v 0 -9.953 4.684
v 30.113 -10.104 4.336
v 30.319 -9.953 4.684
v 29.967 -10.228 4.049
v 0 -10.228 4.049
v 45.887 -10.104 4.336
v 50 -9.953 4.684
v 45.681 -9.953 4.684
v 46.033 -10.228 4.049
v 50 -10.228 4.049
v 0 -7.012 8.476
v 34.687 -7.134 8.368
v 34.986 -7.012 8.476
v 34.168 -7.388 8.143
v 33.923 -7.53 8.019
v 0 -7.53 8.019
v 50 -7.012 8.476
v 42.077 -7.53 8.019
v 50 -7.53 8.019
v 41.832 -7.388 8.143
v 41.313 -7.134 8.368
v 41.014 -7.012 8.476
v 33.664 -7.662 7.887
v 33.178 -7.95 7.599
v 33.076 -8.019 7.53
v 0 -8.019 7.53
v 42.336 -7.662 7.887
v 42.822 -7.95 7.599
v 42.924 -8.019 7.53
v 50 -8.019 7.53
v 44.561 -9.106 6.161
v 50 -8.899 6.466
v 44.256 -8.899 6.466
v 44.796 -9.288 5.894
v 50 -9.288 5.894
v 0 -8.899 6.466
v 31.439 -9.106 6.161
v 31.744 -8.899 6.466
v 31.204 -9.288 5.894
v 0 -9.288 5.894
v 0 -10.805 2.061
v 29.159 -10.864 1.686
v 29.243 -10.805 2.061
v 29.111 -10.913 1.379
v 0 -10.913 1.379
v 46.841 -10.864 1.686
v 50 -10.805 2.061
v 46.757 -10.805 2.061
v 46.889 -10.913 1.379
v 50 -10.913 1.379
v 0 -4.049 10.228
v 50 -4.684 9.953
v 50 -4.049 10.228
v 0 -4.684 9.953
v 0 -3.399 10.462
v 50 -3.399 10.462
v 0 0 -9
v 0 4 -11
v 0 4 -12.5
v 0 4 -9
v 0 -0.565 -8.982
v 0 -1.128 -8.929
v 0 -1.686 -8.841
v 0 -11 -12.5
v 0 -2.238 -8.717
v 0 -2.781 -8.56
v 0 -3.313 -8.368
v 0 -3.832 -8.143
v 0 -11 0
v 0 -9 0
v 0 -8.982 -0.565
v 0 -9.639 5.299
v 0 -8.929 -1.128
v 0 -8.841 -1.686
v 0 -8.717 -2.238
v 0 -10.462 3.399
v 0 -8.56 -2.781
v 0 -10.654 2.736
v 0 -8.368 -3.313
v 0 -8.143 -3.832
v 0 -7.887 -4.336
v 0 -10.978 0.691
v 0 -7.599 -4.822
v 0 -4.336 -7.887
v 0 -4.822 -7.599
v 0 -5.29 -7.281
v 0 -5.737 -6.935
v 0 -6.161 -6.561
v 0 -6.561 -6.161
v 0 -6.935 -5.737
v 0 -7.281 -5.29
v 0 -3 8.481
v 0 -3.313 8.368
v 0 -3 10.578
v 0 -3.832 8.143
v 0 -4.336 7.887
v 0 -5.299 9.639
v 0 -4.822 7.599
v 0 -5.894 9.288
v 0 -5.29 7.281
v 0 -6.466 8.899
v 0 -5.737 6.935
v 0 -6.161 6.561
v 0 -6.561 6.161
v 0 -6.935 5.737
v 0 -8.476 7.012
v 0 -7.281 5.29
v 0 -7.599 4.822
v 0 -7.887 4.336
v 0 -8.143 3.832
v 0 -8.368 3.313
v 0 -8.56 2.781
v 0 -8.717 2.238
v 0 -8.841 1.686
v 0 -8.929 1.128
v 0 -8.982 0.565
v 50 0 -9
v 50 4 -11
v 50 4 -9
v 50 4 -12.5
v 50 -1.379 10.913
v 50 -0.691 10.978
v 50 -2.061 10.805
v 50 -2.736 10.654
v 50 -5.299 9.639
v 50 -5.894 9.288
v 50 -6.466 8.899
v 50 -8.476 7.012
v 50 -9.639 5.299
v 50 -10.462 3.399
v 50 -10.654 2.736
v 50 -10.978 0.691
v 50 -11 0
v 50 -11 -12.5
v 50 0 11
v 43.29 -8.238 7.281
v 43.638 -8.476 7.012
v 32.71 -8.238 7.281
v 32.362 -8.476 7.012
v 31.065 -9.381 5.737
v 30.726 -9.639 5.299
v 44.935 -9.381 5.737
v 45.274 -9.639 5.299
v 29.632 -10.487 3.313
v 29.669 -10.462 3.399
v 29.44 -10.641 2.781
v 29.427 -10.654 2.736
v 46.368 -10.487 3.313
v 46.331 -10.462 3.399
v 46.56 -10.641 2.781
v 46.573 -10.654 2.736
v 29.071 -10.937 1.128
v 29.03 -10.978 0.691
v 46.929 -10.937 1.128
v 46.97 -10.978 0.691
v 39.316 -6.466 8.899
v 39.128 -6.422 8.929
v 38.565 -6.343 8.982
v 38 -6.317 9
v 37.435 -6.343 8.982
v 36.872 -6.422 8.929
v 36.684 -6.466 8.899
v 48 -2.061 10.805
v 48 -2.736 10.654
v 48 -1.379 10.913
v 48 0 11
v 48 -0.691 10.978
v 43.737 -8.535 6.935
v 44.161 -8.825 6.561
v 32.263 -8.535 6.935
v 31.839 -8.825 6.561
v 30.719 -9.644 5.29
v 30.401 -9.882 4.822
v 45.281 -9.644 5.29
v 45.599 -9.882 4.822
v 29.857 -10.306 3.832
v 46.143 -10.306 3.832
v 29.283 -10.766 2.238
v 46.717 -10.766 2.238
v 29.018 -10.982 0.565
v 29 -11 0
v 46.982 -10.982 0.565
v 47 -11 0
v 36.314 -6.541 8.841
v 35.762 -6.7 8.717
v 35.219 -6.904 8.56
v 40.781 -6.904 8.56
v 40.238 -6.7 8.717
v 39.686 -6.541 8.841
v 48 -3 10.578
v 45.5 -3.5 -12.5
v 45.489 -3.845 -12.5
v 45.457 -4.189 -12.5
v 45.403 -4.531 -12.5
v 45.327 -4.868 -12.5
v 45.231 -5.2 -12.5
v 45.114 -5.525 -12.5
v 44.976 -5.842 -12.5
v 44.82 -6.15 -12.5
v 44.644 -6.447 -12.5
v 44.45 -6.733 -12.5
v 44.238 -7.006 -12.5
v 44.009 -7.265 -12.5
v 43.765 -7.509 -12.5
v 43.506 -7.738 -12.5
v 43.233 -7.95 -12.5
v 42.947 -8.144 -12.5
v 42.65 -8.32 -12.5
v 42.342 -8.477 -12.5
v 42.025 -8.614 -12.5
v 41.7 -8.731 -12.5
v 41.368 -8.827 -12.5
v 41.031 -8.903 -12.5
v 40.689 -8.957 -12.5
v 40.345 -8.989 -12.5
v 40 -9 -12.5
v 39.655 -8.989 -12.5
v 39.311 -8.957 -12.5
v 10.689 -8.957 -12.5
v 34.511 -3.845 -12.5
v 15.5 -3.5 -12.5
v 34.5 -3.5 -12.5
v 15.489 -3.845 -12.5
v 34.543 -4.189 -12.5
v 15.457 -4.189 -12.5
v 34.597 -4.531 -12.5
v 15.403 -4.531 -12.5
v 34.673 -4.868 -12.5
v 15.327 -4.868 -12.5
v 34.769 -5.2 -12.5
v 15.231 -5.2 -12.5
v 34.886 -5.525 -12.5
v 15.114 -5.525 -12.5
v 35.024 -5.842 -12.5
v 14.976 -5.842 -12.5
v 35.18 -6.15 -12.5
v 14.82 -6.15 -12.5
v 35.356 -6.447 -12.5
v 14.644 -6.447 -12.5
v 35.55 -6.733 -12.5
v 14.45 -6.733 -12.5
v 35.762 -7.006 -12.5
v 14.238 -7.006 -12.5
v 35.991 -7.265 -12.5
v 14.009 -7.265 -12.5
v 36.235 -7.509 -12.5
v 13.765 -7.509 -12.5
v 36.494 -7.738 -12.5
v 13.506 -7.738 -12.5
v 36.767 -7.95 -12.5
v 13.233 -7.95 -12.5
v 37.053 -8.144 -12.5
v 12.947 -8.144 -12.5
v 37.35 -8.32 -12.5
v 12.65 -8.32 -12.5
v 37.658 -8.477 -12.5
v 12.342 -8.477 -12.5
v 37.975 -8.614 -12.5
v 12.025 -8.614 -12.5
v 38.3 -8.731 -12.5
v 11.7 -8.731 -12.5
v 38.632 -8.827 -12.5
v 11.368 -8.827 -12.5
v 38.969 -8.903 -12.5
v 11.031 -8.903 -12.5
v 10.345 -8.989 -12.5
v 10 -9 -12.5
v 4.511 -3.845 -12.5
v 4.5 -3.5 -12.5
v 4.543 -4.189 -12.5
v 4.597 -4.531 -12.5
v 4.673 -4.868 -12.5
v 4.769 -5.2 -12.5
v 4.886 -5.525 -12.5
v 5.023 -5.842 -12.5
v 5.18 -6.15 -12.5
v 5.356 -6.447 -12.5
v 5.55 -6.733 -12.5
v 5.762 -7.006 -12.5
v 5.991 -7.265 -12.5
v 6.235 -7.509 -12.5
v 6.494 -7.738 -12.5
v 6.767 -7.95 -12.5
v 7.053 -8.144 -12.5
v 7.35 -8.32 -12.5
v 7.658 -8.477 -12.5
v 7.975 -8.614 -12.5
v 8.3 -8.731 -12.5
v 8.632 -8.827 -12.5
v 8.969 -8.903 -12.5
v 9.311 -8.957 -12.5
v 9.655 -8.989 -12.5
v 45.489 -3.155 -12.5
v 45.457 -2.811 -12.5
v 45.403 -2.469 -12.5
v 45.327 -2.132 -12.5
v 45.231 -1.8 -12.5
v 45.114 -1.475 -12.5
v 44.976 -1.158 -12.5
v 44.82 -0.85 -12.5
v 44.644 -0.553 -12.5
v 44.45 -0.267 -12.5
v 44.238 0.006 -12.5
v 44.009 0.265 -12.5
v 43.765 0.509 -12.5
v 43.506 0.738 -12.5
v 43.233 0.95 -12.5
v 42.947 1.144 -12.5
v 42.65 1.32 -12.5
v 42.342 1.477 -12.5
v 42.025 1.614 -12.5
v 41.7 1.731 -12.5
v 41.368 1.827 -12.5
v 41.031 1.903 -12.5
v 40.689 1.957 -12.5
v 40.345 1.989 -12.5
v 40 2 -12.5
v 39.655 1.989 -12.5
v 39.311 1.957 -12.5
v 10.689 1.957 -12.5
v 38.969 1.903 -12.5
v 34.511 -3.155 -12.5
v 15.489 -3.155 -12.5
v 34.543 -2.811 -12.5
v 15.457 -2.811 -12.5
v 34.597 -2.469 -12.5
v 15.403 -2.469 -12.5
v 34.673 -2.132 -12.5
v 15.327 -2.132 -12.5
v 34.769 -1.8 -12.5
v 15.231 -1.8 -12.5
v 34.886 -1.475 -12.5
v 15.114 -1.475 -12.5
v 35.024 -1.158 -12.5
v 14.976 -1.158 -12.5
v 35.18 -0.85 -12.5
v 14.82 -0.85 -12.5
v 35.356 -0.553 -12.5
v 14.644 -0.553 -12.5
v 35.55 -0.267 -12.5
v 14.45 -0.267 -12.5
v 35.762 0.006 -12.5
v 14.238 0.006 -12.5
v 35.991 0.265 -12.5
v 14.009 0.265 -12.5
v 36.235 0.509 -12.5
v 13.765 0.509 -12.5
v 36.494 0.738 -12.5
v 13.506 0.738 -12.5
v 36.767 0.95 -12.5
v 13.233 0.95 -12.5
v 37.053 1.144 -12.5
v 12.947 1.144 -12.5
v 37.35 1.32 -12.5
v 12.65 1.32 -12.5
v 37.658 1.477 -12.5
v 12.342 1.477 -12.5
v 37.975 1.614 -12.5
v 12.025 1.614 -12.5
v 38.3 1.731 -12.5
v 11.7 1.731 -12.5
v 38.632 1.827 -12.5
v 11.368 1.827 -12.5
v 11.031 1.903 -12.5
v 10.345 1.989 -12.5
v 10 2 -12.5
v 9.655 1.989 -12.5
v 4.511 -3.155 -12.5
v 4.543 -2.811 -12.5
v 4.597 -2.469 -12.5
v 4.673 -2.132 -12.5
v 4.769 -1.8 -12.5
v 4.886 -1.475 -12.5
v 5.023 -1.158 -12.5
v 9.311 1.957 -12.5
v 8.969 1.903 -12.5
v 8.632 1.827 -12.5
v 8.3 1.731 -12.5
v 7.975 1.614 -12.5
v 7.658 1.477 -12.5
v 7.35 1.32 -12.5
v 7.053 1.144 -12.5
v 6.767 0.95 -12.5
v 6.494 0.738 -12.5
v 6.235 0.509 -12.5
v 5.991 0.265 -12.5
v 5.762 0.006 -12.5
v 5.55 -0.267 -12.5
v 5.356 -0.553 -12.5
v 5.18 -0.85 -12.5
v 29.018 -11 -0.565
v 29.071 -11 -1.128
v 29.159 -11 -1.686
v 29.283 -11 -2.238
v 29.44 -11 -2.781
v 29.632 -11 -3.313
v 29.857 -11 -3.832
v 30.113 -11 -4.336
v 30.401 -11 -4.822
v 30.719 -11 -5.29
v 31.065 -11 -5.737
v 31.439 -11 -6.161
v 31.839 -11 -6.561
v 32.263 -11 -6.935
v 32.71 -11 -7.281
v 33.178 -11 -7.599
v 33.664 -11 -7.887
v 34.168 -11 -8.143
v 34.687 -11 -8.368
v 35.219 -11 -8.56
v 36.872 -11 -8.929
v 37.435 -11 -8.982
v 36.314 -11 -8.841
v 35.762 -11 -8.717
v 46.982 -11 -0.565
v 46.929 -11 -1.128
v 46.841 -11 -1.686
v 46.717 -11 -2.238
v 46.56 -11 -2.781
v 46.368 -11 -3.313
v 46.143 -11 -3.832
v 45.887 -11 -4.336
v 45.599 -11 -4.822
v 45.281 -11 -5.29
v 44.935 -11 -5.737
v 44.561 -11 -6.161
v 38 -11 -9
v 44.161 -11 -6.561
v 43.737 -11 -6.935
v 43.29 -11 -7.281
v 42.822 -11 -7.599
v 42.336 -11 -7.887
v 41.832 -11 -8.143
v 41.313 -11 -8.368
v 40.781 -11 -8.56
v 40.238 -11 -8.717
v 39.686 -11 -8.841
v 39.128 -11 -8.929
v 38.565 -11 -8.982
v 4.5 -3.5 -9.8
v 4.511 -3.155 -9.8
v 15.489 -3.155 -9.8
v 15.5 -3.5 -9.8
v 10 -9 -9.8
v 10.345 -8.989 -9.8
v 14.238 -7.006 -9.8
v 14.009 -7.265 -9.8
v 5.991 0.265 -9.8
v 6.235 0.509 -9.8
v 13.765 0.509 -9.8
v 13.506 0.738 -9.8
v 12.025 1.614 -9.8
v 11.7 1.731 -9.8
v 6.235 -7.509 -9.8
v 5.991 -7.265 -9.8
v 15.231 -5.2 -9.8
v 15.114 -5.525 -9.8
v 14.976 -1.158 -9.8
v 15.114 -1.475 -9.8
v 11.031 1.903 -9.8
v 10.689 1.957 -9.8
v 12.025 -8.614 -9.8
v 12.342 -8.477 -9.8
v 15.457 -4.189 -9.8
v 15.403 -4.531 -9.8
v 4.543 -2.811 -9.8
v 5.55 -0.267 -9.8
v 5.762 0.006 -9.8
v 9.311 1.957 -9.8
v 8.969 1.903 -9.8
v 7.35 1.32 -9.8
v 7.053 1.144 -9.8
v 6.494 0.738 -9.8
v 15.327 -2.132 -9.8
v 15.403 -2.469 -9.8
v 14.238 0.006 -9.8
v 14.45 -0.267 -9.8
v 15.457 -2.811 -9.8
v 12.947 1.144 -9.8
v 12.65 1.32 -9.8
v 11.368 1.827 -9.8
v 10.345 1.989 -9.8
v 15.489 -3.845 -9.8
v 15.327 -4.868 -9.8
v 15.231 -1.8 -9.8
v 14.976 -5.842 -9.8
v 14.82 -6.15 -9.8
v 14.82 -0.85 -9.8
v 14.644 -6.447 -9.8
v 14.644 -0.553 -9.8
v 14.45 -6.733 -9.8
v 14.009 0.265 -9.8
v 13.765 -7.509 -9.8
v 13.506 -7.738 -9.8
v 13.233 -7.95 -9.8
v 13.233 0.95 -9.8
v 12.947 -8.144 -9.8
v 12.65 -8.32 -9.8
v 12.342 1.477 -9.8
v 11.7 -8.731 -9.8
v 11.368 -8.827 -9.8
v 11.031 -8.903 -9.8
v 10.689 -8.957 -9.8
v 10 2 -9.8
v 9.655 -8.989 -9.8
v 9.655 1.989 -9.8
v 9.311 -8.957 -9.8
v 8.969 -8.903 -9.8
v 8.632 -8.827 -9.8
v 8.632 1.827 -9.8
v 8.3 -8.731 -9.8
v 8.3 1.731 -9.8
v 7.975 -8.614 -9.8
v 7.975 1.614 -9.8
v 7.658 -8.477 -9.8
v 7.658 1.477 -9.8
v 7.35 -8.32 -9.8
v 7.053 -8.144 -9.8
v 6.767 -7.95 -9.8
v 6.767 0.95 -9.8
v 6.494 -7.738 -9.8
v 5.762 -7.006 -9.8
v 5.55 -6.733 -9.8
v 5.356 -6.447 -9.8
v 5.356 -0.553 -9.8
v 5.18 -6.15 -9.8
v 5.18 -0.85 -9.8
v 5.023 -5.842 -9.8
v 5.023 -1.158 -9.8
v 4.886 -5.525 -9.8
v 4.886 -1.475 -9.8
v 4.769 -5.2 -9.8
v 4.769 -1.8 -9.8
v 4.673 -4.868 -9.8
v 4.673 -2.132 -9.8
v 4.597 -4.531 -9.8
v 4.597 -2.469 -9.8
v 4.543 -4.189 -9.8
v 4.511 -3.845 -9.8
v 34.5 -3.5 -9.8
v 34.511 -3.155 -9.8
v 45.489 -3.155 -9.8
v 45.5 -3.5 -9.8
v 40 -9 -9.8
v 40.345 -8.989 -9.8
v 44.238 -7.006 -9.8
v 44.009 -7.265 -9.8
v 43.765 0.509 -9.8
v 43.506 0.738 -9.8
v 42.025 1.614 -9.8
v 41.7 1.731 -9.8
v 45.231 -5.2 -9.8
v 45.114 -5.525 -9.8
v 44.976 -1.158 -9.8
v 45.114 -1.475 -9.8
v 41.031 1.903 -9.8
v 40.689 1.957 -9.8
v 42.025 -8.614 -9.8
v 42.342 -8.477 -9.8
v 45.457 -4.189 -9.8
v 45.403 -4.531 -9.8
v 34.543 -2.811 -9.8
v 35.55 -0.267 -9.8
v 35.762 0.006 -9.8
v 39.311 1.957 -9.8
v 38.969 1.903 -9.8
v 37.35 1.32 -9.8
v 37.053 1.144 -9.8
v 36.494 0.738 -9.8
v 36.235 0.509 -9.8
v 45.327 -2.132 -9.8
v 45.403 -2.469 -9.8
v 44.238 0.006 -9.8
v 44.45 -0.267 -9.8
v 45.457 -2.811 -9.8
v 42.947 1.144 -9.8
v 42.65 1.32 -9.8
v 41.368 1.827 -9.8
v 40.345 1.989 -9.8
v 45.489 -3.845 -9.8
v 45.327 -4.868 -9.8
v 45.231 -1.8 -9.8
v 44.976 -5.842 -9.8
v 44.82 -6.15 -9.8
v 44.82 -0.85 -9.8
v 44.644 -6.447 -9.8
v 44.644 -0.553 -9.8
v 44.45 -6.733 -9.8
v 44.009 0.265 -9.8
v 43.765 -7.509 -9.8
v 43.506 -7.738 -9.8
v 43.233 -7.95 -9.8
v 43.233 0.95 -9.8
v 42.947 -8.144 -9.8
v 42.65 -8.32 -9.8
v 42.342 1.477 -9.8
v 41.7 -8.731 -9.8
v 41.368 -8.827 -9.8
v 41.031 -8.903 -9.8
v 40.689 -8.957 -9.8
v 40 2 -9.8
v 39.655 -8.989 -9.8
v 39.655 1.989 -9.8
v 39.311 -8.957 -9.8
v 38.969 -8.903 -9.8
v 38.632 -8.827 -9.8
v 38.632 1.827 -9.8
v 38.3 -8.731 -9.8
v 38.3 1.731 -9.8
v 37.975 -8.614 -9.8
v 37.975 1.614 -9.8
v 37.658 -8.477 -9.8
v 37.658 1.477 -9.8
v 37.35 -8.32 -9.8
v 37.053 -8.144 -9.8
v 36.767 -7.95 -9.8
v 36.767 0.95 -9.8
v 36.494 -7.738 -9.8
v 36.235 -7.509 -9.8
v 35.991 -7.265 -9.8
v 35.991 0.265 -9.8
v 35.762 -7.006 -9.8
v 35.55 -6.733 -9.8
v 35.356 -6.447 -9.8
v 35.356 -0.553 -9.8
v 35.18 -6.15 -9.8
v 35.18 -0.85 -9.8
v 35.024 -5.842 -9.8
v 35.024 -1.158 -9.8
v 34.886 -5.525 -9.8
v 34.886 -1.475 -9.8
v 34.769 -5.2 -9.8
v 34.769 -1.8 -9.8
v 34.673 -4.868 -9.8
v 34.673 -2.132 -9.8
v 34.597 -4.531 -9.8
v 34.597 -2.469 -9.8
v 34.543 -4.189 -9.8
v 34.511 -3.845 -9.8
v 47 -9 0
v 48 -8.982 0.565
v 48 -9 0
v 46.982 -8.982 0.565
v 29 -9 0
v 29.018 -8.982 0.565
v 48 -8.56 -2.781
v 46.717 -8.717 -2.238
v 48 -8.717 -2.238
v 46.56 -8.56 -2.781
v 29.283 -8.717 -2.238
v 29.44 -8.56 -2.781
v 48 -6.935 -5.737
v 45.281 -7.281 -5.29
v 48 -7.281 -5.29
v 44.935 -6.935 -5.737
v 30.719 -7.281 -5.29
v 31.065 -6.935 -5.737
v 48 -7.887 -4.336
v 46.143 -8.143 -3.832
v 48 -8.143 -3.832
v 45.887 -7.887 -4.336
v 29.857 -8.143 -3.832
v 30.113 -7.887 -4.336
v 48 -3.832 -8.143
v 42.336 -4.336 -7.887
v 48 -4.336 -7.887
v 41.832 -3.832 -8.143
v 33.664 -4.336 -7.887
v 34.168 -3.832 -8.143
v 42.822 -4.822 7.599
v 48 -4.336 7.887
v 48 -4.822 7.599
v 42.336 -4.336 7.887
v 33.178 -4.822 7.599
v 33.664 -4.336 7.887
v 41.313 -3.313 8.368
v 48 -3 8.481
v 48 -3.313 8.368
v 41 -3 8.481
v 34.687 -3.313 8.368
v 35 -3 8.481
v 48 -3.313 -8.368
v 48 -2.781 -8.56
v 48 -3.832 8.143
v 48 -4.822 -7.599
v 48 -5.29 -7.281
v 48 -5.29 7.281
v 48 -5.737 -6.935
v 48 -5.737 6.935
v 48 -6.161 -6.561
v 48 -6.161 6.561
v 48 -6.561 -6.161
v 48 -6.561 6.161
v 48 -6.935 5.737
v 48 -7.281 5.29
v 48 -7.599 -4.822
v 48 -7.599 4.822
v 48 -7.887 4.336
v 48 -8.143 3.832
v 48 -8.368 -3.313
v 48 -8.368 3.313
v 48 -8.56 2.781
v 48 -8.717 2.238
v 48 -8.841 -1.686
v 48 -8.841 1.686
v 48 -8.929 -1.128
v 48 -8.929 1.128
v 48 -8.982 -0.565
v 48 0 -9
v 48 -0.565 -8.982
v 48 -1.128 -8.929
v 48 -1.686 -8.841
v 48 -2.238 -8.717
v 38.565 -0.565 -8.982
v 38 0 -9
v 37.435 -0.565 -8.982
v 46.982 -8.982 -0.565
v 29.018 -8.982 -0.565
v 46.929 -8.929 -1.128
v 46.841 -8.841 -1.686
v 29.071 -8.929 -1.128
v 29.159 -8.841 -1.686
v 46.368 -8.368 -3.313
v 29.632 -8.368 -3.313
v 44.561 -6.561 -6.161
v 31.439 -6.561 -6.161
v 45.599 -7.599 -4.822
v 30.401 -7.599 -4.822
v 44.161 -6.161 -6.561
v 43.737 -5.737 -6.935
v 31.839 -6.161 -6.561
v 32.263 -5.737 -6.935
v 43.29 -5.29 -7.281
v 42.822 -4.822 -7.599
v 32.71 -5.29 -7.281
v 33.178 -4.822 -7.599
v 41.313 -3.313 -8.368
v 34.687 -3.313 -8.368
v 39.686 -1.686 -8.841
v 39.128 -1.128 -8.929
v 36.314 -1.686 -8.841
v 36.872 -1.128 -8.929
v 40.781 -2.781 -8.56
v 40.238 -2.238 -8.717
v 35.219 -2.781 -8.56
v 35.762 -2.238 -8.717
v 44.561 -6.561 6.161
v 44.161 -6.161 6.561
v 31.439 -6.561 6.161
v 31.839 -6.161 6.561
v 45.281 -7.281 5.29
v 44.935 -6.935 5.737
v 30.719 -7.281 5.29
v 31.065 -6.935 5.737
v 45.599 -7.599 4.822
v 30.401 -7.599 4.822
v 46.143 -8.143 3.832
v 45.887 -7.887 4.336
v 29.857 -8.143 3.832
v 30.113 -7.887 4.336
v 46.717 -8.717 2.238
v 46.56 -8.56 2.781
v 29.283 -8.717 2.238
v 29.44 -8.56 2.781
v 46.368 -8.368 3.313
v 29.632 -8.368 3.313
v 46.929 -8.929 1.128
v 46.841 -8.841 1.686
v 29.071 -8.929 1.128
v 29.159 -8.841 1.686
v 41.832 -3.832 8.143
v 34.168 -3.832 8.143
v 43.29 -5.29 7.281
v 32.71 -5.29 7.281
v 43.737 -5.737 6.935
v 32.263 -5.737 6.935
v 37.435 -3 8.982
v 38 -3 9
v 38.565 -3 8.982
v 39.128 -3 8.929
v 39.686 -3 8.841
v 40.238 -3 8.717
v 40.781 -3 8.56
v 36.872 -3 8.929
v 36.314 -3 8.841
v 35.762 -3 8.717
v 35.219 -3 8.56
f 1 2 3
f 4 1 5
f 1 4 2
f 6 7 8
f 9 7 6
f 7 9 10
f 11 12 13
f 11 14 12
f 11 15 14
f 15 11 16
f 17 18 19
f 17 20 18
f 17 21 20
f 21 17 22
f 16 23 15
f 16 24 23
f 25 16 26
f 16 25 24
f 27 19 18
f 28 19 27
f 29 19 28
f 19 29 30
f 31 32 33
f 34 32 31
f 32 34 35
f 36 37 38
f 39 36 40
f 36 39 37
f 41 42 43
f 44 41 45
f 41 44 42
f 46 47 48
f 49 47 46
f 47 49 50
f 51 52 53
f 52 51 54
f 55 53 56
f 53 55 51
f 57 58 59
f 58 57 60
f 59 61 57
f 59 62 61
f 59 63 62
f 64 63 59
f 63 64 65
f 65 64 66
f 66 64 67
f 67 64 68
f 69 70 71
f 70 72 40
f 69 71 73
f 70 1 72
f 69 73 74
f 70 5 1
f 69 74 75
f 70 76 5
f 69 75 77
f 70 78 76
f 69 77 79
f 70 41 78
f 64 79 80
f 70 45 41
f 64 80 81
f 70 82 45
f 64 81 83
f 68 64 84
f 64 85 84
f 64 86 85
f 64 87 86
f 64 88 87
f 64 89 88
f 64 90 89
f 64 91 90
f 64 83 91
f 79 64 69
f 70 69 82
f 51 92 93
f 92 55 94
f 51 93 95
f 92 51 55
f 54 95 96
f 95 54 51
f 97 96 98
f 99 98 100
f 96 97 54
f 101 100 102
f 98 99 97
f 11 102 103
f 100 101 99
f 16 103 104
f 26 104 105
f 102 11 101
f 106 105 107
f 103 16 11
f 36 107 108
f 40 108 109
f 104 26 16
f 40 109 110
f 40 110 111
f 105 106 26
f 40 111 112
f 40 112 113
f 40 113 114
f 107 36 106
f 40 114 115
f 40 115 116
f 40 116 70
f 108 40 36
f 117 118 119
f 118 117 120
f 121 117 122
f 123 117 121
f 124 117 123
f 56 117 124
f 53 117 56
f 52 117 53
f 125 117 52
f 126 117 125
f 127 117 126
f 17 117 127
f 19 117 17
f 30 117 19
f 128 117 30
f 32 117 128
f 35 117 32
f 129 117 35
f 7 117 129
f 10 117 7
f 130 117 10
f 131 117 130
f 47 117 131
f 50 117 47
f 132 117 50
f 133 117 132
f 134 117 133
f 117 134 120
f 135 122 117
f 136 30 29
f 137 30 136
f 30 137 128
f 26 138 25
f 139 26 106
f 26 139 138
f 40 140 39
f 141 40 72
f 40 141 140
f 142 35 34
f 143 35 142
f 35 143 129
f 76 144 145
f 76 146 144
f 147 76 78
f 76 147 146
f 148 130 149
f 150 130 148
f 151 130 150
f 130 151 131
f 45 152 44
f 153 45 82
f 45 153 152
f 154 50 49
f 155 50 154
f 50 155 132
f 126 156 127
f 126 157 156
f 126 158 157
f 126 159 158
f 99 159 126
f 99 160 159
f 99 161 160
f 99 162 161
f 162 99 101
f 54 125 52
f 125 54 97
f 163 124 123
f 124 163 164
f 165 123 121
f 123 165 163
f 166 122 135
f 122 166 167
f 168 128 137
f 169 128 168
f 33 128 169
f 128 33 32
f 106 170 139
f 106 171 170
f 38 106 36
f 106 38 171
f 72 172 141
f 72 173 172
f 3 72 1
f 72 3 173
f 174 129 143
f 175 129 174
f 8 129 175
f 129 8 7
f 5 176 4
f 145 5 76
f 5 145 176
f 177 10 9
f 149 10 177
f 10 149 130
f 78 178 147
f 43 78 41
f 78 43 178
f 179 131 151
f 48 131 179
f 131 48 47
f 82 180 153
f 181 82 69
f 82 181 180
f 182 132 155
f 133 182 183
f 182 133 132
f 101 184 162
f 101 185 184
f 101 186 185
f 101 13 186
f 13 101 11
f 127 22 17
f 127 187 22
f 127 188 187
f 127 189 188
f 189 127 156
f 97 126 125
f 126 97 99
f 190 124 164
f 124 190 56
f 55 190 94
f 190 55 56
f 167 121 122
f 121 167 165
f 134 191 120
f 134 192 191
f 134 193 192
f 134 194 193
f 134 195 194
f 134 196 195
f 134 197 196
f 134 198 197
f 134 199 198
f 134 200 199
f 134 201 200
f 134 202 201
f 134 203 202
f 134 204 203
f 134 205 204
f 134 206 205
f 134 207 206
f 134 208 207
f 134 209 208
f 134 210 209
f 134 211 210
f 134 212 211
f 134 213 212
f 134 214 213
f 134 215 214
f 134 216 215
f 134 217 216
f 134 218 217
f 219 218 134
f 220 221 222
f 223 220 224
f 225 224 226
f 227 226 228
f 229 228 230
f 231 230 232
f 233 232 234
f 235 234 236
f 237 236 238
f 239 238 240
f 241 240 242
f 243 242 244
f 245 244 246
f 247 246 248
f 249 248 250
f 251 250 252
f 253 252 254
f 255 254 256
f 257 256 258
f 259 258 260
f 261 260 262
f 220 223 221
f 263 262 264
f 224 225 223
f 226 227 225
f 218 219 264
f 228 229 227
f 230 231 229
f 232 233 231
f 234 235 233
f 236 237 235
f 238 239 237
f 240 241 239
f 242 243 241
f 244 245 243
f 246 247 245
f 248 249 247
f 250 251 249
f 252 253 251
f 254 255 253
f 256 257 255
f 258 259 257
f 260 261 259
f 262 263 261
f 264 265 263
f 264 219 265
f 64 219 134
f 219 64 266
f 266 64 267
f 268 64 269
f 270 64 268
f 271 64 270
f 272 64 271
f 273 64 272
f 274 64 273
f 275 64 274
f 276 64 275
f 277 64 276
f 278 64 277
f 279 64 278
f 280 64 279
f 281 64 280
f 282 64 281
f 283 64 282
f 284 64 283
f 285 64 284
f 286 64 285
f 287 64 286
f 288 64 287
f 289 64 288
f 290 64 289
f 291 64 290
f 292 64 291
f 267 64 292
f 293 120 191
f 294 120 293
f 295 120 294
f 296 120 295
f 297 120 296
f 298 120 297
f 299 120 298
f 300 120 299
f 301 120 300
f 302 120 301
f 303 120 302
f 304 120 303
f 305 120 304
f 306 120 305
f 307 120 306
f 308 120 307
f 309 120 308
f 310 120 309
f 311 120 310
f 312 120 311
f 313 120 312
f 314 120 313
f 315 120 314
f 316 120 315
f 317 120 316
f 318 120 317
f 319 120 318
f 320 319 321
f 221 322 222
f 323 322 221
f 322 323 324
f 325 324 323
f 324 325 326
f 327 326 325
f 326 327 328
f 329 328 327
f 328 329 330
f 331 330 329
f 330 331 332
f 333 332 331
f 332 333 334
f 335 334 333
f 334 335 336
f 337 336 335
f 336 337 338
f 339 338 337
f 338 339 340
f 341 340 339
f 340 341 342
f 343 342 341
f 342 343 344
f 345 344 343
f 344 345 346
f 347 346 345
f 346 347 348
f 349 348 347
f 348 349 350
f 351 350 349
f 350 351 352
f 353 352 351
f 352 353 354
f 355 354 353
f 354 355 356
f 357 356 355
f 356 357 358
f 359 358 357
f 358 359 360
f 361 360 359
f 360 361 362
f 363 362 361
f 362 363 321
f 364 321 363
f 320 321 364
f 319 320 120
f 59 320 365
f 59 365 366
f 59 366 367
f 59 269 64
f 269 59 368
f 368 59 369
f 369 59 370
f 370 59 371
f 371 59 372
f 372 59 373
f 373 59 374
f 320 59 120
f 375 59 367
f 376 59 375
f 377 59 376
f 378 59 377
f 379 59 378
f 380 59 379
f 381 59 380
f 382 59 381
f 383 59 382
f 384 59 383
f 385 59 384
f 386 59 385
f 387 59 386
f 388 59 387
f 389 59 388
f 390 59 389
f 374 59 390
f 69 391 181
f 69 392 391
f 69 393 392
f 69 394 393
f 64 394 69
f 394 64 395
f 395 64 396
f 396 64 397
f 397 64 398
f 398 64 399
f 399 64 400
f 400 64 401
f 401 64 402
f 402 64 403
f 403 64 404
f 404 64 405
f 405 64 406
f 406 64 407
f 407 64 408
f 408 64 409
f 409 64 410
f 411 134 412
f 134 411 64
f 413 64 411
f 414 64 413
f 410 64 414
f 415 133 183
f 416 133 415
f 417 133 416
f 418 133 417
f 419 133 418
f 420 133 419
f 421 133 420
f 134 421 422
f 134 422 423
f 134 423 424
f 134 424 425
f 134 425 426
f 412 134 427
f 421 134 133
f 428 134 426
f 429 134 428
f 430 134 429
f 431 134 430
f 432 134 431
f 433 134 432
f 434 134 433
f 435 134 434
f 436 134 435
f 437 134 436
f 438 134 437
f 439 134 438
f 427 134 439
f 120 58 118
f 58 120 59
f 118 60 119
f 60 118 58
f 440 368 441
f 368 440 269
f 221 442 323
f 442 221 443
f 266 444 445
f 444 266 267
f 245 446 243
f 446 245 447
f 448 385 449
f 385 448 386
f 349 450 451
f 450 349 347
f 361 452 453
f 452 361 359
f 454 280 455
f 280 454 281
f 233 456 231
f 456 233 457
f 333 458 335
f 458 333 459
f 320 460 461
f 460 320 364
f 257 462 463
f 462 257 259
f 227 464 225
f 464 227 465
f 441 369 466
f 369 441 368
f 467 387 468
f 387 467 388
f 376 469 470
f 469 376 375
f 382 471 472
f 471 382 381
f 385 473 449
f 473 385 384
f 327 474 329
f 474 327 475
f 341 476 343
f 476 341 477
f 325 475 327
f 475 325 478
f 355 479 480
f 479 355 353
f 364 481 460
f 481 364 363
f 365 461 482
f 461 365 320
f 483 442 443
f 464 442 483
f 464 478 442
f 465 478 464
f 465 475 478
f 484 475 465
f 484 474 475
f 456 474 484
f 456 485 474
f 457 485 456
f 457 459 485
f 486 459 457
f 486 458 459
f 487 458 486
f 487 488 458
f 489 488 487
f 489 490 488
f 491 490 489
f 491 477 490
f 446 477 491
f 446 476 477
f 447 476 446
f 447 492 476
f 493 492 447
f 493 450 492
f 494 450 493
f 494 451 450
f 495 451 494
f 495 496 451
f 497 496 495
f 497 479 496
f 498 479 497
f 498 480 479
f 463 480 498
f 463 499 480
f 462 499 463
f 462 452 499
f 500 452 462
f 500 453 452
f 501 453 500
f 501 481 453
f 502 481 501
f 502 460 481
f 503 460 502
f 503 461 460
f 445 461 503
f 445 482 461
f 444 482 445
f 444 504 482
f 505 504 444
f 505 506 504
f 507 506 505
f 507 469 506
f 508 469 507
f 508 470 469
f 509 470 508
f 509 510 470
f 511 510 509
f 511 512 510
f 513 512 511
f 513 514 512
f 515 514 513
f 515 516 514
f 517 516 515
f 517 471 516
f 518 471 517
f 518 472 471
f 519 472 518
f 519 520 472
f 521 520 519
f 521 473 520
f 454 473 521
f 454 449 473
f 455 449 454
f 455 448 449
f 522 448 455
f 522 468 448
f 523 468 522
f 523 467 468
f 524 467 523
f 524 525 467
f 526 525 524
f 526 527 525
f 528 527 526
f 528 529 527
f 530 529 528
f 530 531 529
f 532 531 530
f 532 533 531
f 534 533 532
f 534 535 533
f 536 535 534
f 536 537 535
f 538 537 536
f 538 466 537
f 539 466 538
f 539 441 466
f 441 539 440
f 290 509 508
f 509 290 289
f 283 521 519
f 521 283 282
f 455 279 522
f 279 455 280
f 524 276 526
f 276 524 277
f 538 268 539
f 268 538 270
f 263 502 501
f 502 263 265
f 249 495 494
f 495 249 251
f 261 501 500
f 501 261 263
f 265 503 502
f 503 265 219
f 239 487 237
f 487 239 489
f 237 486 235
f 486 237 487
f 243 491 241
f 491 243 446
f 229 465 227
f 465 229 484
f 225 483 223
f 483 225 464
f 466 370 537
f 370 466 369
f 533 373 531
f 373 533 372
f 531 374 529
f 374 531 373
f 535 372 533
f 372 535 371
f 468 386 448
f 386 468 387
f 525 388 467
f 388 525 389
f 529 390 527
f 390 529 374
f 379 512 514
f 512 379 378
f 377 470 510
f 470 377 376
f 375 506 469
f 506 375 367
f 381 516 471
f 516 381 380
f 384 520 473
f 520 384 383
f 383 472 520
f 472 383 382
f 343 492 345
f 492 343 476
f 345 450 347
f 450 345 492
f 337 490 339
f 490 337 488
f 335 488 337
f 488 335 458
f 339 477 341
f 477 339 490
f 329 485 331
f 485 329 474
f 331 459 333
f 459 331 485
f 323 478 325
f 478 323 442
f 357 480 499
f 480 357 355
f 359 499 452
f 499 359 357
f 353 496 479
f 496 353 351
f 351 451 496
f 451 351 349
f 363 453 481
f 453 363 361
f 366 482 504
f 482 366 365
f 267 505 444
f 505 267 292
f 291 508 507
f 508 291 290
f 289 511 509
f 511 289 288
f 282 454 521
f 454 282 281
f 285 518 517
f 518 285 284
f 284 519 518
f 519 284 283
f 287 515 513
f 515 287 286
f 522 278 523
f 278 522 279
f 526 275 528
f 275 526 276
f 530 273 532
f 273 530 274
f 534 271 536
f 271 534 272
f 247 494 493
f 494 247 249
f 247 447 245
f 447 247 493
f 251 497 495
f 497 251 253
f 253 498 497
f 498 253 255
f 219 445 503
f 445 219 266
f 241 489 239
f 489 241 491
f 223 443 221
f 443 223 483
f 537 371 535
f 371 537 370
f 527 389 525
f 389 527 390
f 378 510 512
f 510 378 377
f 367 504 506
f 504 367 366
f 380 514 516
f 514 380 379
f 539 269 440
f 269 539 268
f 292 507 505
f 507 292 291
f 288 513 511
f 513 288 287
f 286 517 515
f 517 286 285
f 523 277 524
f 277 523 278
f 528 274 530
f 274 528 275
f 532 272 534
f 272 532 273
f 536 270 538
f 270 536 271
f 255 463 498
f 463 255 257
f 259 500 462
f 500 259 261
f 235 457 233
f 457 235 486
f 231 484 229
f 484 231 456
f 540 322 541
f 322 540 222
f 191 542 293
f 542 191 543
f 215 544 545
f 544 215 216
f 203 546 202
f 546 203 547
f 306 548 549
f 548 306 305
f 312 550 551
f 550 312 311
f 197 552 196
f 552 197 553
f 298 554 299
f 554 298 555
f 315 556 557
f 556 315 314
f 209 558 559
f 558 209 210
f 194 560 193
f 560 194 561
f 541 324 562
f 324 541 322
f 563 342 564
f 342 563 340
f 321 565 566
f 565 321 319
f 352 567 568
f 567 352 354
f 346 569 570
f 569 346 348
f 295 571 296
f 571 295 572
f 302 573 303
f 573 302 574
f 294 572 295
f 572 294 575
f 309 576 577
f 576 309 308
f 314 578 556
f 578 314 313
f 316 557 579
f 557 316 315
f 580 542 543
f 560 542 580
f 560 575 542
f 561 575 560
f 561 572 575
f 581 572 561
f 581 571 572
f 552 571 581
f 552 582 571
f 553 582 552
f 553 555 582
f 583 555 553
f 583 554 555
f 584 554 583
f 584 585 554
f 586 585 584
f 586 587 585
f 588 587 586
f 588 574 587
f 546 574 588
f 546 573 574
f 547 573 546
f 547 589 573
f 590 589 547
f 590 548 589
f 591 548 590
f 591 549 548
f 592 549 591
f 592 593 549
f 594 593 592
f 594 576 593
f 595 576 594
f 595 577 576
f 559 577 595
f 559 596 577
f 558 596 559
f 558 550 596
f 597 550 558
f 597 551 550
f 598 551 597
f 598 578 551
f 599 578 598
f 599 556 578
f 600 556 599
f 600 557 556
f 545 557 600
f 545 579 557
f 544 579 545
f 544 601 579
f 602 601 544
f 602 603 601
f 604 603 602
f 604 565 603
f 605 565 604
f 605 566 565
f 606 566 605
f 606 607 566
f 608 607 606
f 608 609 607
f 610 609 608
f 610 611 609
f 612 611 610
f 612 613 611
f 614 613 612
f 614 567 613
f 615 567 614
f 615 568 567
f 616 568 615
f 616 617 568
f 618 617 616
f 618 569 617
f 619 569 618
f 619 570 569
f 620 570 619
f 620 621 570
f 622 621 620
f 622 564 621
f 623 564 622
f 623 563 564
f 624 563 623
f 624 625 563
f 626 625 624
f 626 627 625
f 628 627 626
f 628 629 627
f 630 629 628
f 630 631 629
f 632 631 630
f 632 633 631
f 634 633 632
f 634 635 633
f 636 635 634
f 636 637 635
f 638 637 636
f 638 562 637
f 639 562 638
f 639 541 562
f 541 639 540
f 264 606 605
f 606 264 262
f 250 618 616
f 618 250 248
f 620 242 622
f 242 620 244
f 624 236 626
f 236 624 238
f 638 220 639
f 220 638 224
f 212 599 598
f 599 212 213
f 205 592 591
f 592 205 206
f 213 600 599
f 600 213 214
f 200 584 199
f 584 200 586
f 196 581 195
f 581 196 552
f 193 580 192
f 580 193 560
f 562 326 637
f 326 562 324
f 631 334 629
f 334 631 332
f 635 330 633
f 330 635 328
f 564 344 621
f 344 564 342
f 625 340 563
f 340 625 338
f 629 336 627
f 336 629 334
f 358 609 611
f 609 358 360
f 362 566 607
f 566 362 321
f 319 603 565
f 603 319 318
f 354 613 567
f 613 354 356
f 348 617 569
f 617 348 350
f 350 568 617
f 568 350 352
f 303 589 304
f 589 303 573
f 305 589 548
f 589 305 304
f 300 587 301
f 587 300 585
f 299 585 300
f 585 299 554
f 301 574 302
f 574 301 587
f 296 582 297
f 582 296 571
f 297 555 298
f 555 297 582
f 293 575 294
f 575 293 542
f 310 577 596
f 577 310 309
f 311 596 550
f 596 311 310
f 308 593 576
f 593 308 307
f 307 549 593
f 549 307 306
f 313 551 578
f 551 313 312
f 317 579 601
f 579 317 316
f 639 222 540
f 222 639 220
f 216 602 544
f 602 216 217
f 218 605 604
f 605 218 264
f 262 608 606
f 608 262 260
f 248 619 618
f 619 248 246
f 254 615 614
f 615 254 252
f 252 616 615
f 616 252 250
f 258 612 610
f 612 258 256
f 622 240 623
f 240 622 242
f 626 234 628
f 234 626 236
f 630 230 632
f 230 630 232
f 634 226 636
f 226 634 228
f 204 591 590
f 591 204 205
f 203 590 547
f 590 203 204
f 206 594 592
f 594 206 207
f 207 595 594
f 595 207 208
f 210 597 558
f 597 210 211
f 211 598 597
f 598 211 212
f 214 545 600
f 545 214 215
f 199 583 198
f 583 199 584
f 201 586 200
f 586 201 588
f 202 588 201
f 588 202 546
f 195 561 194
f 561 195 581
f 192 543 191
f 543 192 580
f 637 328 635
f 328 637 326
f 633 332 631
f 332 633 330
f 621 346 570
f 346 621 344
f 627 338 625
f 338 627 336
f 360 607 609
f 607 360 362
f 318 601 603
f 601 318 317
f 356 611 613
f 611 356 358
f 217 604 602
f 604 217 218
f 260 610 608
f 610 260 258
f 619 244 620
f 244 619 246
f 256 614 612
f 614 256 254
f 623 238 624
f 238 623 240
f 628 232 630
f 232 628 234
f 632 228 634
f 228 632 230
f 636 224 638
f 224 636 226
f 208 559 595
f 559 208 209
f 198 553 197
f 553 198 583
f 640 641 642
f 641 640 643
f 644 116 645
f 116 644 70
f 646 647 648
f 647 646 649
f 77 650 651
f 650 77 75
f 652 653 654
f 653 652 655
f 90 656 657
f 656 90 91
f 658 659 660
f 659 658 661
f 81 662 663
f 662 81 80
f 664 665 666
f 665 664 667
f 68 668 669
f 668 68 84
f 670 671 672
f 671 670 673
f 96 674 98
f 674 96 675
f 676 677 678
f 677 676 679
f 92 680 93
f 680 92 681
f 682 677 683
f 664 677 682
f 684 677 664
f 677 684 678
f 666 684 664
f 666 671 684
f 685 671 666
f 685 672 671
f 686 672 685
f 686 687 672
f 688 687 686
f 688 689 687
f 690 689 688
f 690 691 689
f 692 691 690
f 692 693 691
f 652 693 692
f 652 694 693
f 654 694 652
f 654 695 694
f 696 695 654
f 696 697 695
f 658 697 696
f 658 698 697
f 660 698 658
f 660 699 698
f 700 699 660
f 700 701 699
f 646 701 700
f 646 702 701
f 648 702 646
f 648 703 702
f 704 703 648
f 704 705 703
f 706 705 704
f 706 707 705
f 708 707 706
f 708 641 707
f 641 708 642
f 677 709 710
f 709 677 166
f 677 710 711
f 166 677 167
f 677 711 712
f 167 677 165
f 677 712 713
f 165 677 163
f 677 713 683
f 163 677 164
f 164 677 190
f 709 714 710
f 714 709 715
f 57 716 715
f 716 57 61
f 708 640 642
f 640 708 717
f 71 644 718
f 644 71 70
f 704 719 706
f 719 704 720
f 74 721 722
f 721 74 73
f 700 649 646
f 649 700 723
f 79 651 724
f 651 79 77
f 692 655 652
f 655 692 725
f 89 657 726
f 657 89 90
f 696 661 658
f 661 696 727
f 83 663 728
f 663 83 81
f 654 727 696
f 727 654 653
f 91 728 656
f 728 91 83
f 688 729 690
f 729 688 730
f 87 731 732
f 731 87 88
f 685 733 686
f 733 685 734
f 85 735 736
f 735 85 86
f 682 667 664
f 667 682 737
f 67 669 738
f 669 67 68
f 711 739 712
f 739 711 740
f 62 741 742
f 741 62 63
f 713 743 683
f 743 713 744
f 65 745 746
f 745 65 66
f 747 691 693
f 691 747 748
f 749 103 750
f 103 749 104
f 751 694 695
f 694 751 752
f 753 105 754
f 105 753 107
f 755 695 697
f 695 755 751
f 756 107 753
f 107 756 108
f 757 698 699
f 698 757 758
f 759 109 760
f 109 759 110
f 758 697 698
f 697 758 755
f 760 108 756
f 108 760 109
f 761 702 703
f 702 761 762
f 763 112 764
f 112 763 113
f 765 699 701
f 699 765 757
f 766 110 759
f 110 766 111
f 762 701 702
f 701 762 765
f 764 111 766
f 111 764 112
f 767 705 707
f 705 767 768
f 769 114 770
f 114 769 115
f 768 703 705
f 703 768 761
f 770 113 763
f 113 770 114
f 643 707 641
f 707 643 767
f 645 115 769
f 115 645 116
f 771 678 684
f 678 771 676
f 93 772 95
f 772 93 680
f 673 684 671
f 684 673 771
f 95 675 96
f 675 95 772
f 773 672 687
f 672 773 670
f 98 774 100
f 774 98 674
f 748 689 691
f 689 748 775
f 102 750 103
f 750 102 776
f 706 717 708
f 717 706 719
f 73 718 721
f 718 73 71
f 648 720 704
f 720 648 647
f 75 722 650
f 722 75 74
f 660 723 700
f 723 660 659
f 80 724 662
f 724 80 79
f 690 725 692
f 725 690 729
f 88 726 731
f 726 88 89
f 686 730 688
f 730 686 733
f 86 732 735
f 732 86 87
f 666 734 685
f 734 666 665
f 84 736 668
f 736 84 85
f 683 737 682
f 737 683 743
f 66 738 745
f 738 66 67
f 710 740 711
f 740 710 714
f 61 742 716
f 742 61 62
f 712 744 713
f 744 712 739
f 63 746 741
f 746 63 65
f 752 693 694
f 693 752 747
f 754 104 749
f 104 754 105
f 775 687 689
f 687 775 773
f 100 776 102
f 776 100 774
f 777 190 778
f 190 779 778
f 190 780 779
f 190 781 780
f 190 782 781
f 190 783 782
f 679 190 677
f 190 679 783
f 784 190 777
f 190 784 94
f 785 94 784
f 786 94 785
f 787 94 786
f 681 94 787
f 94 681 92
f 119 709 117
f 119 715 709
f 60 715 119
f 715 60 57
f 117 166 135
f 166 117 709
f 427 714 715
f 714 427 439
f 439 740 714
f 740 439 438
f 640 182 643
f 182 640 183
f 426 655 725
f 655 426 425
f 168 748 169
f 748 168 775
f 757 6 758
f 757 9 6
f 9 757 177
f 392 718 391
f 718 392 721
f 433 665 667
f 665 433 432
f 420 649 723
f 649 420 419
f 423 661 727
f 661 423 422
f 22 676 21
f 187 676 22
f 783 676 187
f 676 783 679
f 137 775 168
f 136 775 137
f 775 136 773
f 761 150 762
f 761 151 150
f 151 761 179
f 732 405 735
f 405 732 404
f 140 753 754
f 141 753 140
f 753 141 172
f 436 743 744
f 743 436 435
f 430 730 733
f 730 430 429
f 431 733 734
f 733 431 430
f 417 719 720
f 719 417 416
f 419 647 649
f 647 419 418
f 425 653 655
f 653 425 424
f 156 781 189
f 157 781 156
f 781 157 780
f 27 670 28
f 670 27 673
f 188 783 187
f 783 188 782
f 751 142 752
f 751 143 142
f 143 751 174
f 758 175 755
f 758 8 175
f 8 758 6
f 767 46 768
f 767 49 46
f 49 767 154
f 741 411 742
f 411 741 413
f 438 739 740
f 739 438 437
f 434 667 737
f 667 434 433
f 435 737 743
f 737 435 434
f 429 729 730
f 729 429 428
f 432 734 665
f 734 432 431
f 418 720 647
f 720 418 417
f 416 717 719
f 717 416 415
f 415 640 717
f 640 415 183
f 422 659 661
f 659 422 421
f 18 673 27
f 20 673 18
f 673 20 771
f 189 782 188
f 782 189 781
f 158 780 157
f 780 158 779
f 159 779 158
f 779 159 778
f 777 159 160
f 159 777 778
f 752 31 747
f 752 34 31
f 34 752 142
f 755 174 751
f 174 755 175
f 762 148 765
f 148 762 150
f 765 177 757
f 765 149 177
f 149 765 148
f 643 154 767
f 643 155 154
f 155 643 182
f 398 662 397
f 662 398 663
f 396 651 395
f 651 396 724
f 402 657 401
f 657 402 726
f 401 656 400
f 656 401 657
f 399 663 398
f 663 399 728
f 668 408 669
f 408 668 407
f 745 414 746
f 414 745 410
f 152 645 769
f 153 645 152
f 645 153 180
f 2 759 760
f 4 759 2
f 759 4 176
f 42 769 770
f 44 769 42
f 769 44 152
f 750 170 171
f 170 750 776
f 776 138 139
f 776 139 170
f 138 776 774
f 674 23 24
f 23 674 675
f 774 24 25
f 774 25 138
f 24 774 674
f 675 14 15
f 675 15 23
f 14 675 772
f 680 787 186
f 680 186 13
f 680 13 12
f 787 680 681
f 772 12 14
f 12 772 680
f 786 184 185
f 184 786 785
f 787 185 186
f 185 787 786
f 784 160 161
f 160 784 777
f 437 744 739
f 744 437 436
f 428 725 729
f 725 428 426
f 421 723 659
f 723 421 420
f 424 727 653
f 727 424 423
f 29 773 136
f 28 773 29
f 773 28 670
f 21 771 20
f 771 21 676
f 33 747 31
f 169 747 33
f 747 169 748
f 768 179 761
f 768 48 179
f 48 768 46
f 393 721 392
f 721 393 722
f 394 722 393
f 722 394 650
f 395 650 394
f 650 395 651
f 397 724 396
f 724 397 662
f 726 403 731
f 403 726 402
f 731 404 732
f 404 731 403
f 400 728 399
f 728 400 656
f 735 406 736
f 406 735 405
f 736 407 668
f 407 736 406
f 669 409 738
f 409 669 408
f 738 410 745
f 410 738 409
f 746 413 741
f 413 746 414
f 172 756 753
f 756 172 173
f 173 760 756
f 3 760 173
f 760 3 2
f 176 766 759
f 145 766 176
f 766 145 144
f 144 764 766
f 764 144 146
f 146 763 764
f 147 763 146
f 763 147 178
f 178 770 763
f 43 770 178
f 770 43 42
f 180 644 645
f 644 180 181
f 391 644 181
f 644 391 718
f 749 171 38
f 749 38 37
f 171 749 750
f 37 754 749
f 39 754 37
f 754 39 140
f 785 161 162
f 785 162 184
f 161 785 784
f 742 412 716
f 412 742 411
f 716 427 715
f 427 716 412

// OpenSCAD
length=50;  // Good sizes: 50, 110, 200 (in general: 5 + N*30).
magnet_radius = 5.5;  // Use 10x2mm magnets. 5.5 radius is good for hotgluing.  Use ~5 when just pushing magnets in.

$fn=100;
rotate(a=[0,90,0]) { // rotate for printing (magnet side down).
  difference() {
    union() {
      // Basic shape is just a cylinder and cube
      cylinder(r=11, h=length);
      translate([0,-11,0]) cube([12.5,15,length]);
    }
    // Carve inner trail
    translate([0,0,-4])cylinder(r=9, h=length+2);
    // Remove upper parts of the cylinder tube
    translate([-11,-3,-4]) cube([12,25,length+2]);
    translate([0,4,-1]) cube([11,25,length+2]);
    translate([-11,0,-1]) cube([20,25,length+2]);
    
    // drop hole
    translate([0,0,38]) rotate([90,0,0]) cylinder(h=20, r=9);

    // Magnet holes
    for (pos = [10:30:length]) {
      translate([9.8, -3.5, pos]) rotate(a=[0,90,0]) cylinder(h=3, r=5.5, center=false);
    }
}
}
